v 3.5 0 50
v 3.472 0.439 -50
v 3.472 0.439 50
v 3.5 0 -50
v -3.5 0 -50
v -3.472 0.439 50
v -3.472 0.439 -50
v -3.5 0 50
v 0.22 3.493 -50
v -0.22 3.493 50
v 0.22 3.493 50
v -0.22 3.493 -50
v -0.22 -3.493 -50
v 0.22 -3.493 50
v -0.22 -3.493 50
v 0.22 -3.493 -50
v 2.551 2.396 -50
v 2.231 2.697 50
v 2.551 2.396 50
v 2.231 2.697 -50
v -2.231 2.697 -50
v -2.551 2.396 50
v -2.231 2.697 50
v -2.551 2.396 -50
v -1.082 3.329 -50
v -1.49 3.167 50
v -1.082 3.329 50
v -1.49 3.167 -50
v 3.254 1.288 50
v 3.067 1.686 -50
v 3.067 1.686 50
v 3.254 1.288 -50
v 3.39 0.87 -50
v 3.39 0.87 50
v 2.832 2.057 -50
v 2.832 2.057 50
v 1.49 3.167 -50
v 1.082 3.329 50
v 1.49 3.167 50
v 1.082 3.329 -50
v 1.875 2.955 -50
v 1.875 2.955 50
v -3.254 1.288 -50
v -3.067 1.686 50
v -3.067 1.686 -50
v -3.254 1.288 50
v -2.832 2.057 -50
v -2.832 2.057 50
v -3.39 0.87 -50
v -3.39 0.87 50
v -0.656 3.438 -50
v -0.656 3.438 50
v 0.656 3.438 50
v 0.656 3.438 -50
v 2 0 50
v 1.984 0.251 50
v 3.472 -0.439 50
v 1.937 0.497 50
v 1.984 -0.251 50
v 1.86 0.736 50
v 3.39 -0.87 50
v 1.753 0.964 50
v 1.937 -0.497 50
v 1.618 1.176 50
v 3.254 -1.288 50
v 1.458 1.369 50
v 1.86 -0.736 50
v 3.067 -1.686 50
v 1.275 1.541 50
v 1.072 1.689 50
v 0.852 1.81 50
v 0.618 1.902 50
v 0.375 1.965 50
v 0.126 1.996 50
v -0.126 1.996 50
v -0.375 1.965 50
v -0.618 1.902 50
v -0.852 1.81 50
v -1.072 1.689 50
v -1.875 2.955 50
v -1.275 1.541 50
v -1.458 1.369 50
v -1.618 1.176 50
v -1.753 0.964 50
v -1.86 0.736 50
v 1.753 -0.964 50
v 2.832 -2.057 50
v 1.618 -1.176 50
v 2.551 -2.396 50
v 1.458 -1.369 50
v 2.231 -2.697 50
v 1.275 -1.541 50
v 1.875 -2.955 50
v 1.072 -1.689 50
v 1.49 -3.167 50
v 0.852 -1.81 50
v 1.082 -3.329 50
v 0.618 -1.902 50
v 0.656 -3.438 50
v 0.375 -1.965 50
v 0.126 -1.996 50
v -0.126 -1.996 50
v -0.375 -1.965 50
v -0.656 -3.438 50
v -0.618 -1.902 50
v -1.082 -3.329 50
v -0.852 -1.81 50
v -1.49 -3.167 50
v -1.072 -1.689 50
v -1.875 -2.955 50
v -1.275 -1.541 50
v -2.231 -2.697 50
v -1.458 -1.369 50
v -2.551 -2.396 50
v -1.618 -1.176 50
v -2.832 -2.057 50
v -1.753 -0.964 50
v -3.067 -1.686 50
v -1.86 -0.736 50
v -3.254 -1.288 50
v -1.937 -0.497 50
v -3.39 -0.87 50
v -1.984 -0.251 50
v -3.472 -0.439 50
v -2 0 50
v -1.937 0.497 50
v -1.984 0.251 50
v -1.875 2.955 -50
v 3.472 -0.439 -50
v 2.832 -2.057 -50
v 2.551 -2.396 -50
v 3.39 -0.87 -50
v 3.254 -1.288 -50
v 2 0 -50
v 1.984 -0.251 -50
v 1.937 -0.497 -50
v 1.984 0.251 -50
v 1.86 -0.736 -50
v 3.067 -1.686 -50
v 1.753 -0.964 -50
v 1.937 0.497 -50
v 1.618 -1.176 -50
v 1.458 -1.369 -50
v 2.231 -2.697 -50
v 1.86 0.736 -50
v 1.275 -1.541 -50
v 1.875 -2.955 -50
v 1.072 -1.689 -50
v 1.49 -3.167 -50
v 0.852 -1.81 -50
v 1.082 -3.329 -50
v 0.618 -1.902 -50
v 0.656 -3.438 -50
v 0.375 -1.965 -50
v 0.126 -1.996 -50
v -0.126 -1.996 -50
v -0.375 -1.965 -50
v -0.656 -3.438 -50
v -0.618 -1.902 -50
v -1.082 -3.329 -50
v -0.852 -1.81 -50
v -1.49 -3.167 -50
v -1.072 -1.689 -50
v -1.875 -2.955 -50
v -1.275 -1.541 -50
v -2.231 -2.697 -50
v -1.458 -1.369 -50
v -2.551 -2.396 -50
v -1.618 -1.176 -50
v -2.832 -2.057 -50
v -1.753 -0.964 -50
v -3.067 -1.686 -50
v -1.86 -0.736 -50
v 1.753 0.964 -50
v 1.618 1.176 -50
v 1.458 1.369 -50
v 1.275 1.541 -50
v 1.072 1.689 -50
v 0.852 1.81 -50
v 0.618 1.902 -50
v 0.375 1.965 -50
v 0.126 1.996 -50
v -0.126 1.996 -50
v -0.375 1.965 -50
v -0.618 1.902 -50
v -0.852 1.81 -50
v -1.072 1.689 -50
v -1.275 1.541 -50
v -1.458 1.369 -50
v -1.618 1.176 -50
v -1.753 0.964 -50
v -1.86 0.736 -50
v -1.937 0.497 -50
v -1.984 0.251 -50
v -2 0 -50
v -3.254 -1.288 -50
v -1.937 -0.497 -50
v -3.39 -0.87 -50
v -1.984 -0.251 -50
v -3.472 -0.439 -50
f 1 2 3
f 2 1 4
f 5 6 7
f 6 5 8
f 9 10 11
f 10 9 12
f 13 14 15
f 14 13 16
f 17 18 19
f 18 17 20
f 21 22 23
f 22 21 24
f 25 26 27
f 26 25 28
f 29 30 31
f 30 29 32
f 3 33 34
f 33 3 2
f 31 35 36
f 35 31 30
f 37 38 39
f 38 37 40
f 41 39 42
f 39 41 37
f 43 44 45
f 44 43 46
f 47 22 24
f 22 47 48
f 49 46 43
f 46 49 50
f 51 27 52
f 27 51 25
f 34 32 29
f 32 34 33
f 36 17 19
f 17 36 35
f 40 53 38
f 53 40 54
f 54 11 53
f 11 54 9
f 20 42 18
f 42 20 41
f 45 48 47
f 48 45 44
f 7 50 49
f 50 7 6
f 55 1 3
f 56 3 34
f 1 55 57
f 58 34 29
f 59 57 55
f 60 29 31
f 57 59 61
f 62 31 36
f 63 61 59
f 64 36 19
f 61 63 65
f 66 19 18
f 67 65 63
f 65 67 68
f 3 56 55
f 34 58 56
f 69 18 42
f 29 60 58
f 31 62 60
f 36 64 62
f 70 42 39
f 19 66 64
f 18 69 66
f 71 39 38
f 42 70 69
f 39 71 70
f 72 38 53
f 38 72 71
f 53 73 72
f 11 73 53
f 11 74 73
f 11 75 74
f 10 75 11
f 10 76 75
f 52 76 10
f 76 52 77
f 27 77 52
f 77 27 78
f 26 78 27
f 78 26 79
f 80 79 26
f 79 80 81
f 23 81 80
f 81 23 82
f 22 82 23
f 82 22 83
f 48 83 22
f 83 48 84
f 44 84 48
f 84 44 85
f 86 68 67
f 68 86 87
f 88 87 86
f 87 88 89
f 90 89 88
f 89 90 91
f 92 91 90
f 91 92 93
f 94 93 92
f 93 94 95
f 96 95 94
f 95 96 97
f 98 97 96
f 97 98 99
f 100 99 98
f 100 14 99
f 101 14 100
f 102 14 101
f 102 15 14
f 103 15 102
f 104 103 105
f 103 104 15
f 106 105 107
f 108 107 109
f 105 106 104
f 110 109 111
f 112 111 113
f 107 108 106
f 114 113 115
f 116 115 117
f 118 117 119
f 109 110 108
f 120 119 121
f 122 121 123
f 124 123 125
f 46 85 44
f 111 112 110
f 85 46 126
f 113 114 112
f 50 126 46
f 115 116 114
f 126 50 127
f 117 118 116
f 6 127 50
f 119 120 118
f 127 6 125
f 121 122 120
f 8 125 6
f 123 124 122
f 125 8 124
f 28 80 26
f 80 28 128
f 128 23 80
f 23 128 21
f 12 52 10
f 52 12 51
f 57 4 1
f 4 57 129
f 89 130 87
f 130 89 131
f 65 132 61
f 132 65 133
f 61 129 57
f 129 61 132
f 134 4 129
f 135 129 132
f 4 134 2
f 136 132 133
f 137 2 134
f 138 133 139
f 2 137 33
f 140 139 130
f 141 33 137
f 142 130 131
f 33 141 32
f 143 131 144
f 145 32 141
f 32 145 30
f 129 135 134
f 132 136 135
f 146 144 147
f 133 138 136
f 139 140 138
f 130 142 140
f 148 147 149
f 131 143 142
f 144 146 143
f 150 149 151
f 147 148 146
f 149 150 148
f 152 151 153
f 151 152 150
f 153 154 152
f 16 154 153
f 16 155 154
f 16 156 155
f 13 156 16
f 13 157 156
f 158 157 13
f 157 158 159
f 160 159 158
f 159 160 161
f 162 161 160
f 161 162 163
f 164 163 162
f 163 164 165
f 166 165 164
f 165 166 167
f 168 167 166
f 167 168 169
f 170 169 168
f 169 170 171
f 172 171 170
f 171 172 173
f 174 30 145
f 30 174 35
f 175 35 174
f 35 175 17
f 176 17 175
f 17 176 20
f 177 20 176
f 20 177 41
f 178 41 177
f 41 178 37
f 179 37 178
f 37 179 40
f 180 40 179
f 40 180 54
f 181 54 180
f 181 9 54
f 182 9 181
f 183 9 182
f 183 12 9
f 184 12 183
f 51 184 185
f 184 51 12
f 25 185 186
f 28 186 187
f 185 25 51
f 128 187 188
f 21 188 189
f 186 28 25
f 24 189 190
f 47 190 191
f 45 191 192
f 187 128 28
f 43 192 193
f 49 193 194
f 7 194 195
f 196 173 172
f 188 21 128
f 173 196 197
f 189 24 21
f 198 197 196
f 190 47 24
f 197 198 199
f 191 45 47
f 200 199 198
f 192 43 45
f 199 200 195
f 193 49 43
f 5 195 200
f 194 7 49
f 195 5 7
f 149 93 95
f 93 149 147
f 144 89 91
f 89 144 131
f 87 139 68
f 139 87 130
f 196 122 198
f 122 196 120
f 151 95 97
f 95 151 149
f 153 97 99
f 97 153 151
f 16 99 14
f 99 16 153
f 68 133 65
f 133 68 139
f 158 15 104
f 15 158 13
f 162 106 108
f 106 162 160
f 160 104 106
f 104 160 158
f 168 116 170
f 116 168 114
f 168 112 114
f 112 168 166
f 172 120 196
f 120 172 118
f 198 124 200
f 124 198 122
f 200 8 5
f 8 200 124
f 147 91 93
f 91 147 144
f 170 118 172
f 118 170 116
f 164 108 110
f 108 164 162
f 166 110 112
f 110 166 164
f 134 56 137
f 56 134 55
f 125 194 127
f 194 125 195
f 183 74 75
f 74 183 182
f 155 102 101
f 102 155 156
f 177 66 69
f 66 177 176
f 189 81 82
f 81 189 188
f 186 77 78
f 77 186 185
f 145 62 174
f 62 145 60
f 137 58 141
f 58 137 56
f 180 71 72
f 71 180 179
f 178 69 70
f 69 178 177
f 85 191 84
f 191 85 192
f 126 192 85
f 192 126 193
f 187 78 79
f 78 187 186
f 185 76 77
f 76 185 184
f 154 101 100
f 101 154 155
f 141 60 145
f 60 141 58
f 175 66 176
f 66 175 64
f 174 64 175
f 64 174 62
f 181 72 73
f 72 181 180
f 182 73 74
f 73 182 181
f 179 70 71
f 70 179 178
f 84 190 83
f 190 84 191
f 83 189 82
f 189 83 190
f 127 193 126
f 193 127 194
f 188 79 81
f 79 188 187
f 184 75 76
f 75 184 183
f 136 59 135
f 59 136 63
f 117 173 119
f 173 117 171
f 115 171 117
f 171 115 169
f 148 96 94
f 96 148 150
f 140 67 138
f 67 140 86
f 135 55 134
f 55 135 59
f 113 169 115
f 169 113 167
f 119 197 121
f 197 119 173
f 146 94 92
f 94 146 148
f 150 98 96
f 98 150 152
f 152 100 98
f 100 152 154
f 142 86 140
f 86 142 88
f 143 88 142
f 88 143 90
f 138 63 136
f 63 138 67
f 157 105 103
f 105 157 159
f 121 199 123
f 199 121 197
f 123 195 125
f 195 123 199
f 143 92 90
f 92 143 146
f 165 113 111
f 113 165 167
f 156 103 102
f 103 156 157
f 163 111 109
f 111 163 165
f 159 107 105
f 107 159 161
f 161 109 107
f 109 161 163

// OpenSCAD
$fn = 50;


difference() {
	union() {
		translate(v = [0, 0, -50.0000000000]) {
			cylinder(h = 100, r = 3.5000000000);
		}
	}
	union() {
		translate(v = [0, 0, -100.0000000000]) {
			cylinder(h = 200, r = 2);
		}
	}
}
